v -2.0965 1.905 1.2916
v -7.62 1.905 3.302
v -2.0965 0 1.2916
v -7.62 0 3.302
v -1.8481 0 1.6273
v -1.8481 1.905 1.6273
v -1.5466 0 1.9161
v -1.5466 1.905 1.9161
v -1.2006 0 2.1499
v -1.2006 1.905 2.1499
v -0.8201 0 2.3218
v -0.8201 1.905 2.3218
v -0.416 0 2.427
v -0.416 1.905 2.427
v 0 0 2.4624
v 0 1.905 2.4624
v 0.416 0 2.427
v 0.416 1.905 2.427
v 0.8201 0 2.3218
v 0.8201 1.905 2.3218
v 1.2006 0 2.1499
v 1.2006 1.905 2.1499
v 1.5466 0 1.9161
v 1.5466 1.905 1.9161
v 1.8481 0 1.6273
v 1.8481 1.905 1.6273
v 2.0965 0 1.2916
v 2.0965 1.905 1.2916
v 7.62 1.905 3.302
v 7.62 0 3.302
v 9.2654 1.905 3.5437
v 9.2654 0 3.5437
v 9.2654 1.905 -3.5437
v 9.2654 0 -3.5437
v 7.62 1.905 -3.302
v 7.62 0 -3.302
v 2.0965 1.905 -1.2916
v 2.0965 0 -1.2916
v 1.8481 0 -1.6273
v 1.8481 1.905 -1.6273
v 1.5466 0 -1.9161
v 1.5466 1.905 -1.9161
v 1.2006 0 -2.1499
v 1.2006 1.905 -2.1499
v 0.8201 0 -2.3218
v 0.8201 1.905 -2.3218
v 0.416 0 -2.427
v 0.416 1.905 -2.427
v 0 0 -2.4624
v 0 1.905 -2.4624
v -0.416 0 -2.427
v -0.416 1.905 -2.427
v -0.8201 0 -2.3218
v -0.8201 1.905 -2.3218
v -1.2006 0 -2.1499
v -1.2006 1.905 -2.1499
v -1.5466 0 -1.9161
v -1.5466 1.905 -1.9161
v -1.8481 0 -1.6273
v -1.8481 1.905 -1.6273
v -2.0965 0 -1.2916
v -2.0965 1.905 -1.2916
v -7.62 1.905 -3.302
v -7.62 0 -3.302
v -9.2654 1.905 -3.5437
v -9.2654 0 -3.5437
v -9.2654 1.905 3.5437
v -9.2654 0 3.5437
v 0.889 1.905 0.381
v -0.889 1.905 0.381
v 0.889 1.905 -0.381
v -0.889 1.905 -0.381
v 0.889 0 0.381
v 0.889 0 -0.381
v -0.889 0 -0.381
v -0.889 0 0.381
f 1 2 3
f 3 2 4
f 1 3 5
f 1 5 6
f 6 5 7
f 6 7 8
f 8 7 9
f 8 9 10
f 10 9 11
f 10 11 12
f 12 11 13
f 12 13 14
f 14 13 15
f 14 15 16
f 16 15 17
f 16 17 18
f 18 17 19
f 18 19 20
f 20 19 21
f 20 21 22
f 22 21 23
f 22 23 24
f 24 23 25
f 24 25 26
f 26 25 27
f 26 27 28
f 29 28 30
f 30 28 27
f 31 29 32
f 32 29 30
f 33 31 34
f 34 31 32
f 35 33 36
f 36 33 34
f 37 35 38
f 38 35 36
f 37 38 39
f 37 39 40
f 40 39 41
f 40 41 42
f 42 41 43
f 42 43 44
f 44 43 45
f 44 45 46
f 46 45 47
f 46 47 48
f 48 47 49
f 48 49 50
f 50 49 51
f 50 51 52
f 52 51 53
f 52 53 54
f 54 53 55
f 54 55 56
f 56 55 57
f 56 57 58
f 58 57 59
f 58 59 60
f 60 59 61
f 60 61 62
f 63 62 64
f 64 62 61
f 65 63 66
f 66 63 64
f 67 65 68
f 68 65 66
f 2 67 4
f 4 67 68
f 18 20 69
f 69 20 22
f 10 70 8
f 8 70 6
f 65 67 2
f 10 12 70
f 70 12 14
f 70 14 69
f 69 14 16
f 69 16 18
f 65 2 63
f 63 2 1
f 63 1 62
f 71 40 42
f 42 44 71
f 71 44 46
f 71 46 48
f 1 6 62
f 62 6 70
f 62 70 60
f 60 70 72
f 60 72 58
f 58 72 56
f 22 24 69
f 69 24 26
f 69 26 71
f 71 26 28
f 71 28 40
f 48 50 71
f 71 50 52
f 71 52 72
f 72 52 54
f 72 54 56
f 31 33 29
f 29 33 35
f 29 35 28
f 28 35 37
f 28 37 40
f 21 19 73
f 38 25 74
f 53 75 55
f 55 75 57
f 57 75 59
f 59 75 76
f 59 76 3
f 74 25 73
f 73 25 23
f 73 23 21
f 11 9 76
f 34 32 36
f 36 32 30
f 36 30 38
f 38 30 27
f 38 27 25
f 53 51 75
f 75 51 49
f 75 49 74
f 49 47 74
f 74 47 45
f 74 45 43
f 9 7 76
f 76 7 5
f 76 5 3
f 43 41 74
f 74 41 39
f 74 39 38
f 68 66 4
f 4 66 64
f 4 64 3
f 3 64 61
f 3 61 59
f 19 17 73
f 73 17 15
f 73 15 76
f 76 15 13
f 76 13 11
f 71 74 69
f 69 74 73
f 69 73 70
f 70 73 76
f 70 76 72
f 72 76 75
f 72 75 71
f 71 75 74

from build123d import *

# Parameters (mm, degrees)
BOSS_EXTRUDE3_DEPTH = 1.905
SKETCH2_W           = 1.778
SKETCH2_H           = 0.762
CUT_EXTRUDE1_DEPTH  = 2.54


with BuildPart() as part:
    # Sketch1 → Boss-Extrude3 (new body)
    with BuildSketch(Plane(origin=(0, 0, 0), x_dir=(1, 0, 0), z_dir=(0, 1, 0))):
        with BuildLine():
            Line((9.2654018, 3.543697889), (9.2654018, -3.543697889))
            Line((9.2654018, -3.543697889), (7.62, -3.302))
            Line((7.62, -3.302), (2.096490205, -1.291606846))
            ThreePointArc((2.096490205, -1.291606846), (0, -2.462421456), (-2.096490205, -1.291606846))
            Line((-2.096490205, -1.291606846), (-7.62, -3.302))
            Line((-7.62, -3.302), (-9.2654018, -3.543697889))
            Line((-9.2654018, -3.543697889), (-9.2654018, 3.543697889))
            Line((-9.2654018, 3.543697889), (-7.62, 3.302))
            Line((-7.62, 3.302), (-2.096490205, 1.291606846))
            ThreePointArc((-2.096490205, 1.291606846), (0, 2.462421456), (2.096490205, 1.291606846))
            Line((2.096490205, 1.291606846), (7.62, 3.302))
            Line((7.62, 3.302), (9.2654018, 3.543697889))
        make_face()
    extrude(amount=BOSS_EXTRUDE3_DEPTH)

    # Sketch2 → Cut-Extrude1 (cut)
    with BuildSketch(Plane(origin=(0, 1.905, 0), x_dir=(1, 0, 0), z_dir=(0, 1, 0))):
        Rectangle(SKETCH2_W, SKETCH2_H)
    extrude(amount=-CUT_EXTRUDE1_DEPTH, mode=Mode.SUBTRACT)


solid = part.part
